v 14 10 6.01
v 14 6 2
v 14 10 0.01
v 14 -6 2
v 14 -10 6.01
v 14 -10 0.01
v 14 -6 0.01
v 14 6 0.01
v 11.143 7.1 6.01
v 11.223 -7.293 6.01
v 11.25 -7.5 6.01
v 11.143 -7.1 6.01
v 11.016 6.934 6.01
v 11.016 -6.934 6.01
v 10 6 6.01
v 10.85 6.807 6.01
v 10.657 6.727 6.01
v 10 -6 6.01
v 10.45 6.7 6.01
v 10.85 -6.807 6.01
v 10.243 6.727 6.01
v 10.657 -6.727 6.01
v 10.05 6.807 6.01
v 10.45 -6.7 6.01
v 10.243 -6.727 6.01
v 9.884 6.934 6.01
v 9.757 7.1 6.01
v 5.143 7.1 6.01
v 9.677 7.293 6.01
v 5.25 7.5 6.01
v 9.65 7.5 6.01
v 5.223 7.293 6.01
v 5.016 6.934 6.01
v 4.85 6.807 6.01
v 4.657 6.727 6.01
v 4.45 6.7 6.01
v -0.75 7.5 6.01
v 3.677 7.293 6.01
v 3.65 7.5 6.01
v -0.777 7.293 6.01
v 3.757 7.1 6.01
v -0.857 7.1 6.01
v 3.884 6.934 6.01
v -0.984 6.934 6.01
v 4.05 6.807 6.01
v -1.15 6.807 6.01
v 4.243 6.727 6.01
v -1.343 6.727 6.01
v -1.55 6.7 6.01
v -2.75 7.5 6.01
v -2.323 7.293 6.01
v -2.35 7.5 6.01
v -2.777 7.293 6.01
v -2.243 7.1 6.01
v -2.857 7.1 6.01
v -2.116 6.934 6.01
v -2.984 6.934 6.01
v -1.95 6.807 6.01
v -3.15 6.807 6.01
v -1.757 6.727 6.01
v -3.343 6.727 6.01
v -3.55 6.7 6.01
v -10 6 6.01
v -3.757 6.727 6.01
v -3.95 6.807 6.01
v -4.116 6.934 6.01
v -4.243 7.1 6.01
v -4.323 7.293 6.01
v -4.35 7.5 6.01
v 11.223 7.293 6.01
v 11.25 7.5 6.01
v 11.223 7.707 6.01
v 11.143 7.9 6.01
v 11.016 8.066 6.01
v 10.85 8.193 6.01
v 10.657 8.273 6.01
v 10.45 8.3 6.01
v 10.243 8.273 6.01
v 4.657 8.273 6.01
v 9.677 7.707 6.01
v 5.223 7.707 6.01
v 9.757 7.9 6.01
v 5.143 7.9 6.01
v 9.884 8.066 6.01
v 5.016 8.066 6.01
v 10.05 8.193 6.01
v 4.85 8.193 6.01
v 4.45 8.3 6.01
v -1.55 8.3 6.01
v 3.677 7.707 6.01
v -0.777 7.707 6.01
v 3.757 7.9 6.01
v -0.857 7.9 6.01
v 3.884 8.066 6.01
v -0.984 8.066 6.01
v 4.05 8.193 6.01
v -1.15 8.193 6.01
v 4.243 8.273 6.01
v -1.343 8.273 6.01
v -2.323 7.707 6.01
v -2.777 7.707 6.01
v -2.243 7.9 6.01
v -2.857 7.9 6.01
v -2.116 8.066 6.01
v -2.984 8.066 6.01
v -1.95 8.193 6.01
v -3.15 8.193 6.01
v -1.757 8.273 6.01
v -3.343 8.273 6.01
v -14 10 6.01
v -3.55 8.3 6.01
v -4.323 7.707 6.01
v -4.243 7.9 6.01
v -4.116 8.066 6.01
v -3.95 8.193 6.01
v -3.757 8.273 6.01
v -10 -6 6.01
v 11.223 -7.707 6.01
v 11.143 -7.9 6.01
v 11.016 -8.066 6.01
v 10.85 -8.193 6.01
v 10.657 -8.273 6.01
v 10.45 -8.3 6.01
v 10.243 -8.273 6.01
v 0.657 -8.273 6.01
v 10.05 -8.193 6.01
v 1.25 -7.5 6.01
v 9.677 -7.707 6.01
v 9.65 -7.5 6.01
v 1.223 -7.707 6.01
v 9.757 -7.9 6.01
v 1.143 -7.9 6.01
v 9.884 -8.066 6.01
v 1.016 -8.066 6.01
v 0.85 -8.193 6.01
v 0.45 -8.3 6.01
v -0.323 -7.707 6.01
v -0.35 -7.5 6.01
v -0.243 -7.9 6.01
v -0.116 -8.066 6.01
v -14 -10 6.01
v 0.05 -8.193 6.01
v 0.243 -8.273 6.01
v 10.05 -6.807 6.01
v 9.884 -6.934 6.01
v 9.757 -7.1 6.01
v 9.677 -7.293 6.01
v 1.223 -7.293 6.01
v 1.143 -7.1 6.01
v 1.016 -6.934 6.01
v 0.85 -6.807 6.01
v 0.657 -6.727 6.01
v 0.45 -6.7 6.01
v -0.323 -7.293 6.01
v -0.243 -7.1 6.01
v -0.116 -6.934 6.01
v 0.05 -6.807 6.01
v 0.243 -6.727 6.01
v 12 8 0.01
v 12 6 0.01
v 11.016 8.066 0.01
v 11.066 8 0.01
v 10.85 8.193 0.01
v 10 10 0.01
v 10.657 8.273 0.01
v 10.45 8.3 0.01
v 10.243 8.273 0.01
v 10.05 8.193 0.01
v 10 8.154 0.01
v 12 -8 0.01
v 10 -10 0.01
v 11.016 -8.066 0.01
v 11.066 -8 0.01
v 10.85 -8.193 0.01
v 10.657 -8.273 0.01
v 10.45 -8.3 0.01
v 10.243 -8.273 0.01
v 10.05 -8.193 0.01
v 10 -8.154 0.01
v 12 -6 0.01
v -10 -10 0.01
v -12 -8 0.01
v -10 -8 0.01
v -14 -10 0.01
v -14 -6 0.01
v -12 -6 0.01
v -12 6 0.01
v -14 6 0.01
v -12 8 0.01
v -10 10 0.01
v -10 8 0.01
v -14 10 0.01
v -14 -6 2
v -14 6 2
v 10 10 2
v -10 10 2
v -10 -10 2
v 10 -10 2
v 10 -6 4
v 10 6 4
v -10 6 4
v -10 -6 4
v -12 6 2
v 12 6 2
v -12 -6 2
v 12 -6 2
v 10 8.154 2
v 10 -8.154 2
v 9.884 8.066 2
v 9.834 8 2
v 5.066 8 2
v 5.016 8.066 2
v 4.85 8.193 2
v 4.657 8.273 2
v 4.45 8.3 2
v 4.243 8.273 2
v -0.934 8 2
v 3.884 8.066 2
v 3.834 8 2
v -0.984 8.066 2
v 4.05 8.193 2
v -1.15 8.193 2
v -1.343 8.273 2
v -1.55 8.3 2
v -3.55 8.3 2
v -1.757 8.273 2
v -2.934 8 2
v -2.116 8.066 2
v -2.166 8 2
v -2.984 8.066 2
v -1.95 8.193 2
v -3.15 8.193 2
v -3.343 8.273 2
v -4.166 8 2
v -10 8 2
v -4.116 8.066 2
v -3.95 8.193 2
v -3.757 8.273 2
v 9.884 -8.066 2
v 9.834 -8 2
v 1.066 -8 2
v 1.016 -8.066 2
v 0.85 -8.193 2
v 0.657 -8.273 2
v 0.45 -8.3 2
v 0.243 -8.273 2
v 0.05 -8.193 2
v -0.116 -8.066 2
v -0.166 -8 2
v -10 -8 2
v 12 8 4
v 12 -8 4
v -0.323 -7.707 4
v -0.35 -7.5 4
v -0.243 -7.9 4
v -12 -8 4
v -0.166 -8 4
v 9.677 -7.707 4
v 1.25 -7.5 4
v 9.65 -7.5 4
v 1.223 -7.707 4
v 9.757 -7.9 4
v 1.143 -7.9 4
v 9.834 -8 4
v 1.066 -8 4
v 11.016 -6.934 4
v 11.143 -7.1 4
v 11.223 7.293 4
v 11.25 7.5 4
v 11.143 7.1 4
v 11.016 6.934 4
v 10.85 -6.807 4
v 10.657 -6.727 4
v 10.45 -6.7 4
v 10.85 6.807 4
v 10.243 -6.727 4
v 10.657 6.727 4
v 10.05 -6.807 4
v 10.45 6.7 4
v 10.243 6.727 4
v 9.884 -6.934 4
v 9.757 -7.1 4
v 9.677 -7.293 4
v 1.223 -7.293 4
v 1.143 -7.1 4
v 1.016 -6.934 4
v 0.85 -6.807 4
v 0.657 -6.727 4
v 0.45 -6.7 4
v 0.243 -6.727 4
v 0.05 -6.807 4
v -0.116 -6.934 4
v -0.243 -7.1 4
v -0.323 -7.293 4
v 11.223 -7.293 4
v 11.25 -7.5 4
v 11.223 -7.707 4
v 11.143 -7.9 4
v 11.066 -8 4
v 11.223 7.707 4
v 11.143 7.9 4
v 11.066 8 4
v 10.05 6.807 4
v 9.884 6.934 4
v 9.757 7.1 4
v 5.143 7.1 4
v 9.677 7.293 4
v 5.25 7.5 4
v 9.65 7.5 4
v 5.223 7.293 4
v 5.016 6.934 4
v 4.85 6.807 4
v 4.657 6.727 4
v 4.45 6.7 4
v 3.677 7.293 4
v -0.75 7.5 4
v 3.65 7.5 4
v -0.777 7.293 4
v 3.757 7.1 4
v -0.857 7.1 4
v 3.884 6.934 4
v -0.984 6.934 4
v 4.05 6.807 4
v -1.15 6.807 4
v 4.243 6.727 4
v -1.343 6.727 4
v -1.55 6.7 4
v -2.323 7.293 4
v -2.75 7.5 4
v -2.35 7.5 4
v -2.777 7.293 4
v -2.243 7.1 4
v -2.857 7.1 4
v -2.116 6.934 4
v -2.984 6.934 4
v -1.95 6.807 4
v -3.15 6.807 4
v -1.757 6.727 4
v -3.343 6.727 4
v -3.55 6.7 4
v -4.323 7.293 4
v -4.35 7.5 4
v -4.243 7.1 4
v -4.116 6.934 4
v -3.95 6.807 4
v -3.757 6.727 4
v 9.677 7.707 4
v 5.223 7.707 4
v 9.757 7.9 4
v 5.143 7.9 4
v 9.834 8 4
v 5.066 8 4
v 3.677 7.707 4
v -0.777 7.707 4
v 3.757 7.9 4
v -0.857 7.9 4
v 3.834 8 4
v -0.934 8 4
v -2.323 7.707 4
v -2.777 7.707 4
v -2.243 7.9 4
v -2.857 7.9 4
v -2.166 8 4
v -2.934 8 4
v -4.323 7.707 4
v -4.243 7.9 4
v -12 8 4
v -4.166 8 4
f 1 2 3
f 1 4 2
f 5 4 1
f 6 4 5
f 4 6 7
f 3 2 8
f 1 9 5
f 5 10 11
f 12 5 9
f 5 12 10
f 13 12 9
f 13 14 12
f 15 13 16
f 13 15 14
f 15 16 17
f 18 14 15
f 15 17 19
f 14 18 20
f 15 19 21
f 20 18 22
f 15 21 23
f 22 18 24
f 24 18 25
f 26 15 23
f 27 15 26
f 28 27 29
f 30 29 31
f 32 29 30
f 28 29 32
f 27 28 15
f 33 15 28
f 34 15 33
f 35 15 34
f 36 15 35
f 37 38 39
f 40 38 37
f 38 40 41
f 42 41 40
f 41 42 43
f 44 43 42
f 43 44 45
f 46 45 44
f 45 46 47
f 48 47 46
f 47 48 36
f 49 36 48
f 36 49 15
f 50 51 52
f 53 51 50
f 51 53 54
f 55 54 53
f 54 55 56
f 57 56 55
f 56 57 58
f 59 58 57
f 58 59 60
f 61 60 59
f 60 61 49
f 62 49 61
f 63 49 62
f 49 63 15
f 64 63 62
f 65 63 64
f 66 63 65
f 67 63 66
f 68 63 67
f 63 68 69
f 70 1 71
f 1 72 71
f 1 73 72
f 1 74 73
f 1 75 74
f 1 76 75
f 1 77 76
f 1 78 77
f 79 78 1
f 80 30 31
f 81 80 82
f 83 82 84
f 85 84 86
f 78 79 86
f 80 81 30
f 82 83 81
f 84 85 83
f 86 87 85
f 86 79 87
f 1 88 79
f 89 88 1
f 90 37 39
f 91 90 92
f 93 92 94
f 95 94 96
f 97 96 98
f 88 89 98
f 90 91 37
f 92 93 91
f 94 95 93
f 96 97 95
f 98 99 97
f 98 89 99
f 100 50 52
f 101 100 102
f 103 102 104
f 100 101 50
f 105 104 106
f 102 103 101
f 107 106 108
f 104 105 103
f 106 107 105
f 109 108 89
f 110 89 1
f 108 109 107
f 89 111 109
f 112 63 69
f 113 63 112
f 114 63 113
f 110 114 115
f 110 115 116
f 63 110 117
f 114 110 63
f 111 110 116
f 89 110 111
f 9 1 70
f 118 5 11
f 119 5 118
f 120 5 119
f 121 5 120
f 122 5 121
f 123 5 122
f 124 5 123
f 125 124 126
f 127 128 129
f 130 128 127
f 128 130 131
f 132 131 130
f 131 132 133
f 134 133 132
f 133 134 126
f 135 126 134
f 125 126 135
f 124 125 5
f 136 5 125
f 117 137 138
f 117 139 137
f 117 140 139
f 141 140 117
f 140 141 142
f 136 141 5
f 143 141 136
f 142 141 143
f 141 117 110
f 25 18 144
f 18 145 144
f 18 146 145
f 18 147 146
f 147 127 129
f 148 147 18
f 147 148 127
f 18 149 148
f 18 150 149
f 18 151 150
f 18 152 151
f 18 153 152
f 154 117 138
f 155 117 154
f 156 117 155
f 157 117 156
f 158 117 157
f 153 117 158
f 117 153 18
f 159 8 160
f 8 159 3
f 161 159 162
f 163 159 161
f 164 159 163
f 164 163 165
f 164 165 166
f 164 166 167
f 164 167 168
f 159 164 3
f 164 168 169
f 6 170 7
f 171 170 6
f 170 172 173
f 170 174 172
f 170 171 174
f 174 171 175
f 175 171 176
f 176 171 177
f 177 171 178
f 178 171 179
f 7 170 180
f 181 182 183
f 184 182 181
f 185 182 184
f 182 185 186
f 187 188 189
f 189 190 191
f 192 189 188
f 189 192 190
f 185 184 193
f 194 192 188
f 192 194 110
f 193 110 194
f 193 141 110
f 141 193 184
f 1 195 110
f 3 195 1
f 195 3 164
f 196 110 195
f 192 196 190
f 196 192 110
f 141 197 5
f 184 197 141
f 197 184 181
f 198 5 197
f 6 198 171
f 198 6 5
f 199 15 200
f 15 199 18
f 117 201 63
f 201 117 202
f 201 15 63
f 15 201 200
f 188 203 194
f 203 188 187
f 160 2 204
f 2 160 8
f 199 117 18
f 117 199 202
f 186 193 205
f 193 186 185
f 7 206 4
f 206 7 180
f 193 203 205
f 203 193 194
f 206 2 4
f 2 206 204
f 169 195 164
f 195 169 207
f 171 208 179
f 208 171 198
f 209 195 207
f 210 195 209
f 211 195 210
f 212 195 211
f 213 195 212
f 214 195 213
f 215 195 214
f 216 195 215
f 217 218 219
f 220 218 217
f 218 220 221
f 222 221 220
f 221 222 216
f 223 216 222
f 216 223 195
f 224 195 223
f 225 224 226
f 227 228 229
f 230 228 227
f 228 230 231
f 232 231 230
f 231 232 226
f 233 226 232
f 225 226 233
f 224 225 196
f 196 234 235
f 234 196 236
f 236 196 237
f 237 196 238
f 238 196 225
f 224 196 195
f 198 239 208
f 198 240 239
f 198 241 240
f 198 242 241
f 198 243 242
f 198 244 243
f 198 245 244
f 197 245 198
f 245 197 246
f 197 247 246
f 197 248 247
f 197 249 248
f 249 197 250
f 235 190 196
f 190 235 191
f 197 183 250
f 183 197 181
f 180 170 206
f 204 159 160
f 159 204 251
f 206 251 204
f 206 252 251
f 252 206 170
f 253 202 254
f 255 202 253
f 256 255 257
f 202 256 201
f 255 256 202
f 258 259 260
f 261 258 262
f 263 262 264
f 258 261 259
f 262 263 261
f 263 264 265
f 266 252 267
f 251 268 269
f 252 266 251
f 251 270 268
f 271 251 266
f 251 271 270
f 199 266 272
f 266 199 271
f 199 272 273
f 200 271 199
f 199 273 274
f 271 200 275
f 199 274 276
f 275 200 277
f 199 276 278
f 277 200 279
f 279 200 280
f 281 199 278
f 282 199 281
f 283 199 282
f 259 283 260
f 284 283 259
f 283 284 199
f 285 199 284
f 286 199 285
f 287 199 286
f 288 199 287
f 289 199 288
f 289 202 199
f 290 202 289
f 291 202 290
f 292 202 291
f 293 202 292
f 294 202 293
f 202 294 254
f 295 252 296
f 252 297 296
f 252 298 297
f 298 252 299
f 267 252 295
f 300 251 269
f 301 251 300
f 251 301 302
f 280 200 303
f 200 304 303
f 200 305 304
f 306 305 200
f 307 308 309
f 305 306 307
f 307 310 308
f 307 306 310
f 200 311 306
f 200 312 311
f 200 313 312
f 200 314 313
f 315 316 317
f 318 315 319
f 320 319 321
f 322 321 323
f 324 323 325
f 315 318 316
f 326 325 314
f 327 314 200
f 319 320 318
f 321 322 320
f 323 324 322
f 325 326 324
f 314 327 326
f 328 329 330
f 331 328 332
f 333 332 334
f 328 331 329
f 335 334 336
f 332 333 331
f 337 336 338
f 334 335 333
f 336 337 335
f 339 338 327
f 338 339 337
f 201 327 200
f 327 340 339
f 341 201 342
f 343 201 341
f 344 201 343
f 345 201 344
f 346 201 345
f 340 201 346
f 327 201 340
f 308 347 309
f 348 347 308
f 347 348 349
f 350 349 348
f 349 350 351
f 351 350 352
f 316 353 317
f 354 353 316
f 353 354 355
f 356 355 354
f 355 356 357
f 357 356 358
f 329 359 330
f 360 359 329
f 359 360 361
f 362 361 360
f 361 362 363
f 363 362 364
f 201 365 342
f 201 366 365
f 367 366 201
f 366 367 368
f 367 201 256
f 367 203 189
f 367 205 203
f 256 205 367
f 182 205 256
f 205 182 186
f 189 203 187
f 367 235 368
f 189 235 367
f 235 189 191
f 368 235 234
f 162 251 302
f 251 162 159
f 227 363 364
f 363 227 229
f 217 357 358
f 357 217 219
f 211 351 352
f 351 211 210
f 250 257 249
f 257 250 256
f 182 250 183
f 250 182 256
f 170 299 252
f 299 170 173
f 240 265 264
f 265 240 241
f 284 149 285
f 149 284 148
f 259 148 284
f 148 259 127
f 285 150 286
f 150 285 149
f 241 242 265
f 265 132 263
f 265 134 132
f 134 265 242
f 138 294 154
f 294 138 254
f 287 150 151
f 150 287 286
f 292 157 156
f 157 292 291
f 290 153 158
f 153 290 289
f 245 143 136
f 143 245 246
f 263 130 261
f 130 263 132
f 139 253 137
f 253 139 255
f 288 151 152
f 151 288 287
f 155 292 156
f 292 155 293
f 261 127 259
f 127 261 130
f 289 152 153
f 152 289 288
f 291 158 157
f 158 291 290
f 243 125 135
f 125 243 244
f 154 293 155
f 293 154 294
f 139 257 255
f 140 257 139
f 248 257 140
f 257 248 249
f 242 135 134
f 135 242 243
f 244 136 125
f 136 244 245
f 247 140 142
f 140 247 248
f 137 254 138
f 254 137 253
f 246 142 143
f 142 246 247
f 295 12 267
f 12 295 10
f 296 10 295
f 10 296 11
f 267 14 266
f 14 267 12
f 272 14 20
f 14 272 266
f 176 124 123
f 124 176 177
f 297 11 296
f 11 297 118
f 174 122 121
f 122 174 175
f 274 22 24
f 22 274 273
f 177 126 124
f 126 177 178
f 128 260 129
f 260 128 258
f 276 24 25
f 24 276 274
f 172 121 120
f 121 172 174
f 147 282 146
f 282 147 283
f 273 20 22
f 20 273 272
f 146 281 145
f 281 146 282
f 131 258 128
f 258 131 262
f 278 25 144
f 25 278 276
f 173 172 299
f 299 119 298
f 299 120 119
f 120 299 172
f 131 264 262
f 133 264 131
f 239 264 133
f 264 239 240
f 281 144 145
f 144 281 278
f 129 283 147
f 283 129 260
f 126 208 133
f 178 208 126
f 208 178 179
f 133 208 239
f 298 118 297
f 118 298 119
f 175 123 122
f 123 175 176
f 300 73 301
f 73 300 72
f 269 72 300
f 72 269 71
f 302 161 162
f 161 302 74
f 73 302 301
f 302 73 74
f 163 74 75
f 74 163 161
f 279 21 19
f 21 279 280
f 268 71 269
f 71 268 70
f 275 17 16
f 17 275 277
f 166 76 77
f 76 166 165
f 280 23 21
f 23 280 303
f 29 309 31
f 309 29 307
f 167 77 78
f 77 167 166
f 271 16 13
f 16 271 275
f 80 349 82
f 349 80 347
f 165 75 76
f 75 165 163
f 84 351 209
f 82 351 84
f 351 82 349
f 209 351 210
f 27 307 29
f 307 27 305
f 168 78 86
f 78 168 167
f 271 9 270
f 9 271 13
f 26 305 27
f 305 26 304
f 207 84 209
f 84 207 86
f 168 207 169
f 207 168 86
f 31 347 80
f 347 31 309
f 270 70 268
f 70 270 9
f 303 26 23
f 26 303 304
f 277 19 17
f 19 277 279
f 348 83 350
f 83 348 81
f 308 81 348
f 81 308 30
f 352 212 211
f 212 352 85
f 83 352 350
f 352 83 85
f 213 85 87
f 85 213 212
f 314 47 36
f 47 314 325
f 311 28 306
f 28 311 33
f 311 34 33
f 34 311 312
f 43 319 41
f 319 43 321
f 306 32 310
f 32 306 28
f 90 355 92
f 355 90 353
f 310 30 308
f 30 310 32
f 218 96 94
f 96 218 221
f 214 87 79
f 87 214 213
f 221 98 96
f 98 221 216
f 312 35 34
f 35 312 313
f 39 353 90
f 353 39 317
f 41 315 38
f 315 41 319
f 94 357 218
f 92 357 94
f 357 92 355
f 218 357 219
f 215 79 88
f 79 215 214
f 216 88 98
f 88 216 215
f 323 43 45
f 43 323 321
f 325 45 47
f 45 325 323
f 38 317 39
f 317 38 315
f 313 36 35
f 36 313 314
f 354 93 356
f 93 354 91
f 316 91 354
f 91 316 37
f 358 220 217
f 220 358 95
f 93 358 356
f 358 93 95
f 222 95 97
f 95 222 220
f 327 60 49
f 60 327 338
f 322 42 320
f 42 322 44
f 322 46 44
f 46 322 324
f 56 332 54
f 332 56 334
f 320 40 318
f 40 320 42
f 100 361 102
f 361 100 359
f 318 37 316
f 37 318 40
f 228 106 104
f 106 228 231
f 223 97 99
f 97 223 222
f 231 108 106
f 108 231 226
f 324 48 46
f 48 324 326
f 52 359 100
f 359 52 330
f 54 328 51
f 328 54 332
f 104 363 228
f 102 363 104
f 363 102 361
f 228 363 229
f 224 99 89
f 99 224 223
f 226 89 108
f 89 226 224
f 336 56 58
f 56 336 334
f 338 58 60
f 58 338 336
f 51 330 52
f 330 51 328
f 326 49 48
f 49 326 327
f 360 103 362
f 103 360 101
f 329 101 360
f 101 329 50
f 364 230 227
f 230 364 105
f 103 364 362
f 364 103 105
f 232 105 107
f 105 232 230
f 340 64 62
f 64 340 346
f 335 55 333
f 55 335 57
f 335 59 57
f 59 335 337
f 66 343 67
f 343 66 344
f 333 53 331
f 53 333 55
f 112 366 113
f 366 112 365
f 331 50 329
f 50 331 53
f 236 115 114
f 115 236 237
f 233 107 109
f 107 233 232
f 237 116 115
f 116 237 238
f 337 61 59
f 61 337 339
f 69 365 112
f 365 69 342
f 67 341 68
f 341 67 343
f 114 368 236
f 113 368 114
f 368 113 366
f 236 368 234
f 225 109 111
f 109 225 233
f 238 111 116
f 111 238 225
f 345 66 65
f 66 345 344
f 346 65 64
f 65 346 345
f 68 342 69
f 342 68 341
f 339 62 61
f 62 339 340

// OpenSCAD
$fn=24;

module chip()
{
    translate([0,0,2])
        cube([24,16,4], center=true);
}

module pin(posn) {
    pin_dia = 1.6;
    pin_height = 15;
    
    if (posn <= 0)
    {}
    
    else if (posn <= 8)
    {
        x = -12 + 8.45 + 2*(posn - 1);
        y = -8 + 0.5;
                        
        translate([x, y, 0])
            cylinder(h=pin_height, r=pin_dia/2);
    }
    else if (posn <= 16)
    {
        x = -12 + 8.45 + 2*(16 - posn);
        y = 8 - 0.5;
        
        translate([x, y, 0])
            cylinder(h=pin_height, r=pin_dia/2);
    }
    else if (posn <= 22)
    {
        x = 12 - 0.5;
        y = -8 + 2.98 + 2*(posn - 17);
        
        translate([x, y, 0])
            cylinder(h=pin_height, r=pin_dia/2);
    }

}

module shell(){
    difference() {
        translate([0,0,3.01])
            cube([28, 20, 6], center=true);
        cube([20,12,20], center=true);
        cube([40,12,4], center=true);
        cube([20,40,4], center=true);
    }
}

difference() {
    shell();
    union() {
        chip();
        pin(3);
        pin(8);
        pin(9);
        pin(12);
        pin(15);
        pin(16);
        
    }
}
